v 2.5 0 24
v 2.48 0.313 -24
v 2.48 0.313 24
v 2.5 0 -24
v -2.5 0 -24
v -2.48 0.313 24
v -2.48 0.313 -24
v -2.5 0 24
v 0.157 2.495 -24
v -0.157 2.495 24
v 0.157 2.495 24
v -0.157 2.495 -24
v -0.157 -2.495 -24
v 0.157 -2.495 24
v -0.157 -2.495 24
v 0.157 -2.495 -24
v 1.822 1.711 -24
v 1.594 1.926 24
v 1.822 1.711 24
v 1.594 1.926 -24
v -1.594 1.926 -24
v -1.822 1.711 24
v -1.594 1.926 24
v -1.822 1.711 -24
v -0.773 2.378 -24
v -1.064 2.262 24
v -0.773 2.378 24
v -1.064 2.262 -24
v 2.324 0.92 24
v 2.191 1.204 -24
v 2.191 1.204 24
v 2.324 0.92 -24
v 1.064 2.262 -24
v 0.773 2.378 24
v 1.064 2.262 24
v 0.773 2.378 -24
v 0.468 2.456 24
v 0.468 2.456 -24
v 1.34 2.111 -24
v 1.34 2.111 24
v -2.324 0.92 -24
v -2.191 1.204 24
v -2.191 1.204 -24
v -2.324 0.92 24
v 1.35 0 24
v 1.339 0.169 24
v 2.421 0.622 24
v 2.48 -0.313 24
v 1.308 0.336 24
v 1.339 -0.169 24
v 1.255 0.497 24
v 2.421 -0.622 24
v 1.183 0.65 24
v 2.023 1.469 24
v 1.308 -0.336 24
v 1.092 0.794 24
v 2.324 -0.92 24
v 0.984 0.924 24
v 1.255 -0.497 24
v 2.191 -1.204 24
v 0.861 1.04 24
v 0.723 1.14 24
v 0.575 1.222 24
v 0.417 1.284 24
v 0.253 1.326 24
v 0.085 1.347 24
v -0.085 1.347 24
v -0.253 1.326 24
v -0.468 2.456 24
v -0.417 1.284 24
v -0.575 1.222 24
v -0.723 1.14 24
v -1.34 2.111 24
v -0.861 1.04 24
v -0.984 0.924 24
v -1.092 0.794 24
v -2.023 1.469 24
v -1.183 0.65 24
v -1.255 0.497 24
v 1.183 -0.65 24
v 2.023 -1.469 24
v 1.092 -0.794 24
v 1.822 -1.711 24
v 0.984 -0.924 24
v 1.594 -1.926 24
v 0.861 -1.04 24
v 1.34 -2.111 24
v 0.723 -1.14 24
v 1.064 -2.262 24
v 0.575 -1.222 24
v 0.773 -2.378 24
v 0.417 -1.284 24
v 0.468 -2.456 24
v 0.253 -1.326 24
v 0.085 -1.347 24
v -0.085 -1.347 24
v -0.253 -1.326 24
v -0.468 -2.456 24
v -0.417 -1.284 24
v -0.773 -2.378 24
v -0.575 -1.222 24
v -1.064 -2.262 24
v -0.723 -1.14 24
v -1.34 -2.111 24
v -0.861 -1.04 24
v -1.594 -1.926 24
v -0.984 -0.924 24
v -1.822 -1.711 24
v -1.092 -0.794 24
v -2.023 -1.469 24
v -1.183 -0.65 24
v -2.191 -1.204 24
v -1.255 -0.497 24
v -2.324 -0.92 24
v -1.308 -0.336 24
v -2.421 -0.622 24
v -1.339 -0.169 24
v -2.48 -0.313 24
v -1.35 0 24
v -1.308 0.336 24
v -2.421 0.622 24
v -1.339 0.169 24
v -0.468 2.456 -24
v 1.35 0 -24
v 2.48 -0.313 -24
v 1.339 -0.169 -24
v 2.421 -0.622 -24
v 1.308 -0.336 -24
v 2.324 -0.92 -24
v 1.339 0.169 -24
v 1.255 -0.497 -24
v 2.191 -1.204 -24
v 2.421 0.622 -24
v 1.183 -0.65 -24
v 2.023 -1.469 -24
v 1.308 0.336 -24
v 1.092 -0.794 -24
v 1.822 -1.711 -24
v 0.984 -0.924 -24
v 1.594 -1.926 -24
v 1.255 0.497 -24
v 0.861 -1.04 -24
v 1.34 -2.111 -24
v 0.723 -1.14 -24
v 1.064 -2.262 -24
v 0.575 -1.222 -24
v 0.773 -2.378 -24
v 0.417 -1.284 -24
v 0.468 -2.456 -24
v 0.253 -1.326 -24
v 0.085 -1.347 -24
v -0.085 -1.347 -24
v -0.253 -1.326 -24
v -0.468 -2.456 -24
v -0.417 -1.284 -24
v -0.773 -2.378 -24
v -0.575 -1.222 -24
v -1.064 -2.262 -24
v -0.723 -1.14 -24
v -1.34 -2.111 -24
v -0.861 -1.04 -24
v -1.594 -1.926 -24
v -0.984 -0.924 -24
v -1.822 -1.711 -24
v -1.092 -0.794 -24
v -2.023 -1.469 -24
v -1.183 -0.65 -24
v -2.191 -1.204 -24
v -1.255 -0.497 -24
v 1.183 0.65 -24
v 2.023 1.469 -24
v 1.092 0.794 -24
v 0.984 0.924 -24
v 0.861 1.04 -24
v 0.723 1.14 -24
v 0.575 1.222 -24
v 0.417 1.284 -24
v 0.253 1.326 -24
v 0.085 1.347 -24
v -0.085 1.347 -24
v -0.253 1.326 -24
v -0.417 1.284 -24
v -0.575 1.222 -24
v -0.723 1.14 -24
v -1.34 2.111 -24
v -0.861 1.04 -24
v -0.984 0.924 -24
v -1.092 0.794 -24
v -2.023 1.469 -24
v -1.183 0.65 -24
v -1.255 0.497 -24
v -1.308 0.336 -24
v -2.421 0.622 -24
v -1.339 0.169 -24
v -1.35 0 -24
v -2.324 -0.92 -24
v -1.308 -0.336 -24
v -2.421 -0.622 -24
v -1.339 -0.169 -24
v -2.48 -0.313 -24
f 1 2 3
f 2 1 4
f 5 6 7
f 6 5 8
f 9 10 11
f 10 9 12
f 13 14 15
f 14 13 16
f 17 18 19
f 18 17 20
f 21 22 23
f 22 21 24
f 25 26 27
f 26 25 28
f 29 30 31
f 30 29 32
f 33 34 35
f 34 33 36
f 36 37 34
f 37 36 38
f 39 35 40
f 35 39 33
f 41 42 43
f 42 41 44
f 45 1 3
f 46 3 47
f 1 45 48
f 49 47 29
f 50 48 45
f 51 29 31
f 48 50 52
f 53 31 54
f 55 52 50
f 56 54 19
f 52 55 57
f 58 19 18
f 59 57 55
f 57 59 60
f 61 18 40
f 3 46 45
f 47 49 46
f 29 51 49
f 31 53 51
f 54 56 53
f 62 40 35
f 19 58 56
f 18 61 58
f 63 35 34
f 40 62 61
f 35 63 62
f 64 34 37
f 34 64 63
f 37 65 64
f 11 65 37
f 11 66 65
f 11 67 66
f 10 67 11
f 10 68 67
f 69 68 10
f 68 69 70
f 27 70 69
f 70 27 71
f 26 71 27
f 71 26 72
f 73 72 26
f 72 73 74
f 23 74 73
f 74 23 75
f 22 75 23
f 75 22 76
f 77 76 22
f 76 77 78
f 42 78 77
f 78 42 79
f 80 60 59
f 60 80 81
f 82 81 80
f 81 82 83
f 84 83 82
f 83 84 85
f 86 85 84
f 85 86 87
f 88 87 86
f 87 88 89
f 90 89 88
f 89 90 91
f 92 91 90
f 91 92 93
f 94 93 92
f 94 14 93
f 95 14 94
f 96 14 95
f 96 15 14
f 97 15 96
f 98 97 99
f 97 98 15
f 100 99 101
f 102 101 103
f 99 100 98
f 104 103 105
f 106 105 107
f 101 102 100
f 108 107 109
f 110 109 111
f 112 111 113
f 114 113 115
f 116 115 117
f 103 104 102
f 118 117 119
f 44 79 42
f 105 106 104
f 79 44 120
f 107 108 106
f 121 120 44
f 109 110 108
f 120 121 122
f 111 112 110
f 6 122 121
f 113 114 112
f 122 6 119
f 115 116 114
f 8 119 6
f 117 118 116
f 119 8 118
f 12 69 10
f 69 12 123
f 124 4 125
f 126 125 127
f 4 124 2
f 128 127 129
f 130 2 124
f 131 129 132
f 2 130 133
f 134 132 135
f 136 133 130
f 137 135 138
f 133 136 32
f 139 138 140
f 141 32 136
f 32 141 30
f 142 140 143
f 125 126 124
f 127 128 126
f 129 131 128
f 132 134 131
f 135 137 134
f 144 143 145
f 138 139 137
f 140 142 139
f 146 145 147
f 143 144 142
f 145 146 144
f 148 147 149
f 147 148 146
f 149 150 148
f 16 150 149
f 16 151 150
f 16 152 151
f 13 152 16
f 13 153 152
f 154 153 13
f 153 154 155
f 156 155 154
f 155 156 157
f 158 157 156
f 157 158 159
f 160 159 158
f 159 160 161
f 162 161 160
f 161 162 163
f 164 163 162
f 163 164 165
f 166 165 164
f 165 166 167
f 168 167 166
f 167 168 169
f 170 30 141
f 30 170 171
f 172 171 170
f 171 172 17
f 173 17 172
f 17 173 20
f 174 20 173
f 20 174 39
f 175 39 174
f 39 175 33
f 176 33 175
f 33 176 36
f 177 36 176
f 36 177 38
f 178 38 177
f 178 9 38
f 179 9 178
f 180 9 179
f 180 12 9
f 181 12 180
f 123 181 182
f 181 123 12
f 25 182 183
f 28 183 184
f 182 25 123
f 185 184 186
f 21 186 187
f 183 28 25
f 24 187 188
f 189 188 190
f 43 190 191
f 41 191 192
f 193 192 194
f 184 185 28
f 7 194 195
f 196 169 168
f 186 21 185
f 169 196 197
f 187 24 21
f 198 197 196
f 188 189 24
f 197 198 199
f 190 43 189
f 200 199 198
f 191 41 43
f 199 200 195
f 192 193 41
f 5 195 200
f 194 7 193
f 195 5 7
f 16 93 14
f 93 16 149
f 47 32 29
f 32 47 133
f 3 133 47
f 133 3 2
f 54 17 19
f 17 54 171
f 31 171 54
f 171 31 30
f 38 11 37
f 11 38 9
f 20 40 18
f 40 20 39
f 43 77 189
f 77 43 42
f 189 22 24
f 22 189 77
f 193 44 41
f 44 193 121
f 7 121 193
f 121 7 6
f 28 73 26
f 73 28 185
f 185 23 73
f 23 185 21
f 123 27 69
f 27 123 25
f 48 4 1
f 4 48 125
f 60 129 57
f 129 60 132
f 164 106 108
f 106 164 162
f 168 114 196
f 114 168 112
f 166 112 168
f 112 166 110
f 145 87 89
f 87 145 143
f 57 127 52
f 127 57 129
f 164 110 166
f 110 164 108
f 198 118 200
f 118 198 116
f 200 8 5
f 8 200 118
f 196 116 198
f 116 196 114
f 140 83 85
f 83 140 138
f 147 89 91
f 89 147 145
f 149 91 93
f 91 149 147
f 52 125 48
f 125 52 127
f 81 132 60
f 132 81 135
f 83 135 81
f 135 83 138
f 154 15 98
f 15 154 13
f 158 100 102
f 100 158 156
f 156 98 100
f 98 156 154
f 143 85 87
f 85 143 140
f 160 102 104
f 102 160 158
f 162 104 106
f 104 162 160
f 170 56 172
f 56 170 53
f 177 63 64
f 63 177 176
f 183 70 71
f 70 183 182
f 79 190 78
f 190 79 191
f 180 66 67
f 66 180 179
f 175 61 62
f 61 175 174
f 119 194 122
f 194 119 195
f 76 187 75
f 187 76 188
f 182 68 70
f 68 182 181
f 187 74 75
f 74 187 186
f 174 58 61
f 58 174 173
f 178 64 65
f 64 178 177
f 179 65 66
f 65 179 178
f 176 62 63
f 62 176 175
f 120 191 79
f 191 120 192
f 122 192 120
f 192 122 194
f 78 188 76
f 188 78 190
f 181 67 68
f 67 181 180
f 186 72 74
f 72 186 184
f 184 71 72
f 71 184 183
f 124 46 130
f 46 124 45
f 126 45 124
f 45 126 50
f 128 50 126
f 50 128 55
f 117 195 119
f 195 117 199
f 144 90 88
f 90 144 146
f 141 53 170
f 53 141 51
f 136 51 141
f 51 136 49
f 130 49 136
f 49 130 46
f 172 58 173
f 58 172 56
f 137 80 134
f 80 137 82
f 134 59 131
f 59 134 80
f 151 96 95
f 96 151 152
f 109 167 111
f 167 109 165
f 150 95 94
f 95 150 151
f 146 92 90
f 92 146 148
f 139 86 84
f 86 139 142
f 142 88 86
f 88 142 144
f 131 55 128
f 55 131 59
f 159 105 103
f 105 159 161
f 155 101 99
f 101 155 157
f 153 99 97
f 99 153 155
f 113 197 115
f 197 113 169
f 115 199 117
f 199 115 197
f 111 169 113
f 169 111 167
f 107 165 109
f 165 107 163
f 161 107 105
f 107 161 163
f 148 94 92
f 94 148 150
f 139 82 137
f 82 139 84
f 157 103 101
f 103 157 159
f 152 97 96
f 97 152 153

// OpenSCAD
$fn = 50;


difference() {
	union() {
		translate(v = [0, 0, -24.0000000000]) {
			cylinder(h = 48, r = 2.5000000000);
		}
	}
	union() {
		translate(v = [0, 0, -100.0000000000]) {
			cylinder(h = 200, r = 1.3500000000);
		}
	}
}
